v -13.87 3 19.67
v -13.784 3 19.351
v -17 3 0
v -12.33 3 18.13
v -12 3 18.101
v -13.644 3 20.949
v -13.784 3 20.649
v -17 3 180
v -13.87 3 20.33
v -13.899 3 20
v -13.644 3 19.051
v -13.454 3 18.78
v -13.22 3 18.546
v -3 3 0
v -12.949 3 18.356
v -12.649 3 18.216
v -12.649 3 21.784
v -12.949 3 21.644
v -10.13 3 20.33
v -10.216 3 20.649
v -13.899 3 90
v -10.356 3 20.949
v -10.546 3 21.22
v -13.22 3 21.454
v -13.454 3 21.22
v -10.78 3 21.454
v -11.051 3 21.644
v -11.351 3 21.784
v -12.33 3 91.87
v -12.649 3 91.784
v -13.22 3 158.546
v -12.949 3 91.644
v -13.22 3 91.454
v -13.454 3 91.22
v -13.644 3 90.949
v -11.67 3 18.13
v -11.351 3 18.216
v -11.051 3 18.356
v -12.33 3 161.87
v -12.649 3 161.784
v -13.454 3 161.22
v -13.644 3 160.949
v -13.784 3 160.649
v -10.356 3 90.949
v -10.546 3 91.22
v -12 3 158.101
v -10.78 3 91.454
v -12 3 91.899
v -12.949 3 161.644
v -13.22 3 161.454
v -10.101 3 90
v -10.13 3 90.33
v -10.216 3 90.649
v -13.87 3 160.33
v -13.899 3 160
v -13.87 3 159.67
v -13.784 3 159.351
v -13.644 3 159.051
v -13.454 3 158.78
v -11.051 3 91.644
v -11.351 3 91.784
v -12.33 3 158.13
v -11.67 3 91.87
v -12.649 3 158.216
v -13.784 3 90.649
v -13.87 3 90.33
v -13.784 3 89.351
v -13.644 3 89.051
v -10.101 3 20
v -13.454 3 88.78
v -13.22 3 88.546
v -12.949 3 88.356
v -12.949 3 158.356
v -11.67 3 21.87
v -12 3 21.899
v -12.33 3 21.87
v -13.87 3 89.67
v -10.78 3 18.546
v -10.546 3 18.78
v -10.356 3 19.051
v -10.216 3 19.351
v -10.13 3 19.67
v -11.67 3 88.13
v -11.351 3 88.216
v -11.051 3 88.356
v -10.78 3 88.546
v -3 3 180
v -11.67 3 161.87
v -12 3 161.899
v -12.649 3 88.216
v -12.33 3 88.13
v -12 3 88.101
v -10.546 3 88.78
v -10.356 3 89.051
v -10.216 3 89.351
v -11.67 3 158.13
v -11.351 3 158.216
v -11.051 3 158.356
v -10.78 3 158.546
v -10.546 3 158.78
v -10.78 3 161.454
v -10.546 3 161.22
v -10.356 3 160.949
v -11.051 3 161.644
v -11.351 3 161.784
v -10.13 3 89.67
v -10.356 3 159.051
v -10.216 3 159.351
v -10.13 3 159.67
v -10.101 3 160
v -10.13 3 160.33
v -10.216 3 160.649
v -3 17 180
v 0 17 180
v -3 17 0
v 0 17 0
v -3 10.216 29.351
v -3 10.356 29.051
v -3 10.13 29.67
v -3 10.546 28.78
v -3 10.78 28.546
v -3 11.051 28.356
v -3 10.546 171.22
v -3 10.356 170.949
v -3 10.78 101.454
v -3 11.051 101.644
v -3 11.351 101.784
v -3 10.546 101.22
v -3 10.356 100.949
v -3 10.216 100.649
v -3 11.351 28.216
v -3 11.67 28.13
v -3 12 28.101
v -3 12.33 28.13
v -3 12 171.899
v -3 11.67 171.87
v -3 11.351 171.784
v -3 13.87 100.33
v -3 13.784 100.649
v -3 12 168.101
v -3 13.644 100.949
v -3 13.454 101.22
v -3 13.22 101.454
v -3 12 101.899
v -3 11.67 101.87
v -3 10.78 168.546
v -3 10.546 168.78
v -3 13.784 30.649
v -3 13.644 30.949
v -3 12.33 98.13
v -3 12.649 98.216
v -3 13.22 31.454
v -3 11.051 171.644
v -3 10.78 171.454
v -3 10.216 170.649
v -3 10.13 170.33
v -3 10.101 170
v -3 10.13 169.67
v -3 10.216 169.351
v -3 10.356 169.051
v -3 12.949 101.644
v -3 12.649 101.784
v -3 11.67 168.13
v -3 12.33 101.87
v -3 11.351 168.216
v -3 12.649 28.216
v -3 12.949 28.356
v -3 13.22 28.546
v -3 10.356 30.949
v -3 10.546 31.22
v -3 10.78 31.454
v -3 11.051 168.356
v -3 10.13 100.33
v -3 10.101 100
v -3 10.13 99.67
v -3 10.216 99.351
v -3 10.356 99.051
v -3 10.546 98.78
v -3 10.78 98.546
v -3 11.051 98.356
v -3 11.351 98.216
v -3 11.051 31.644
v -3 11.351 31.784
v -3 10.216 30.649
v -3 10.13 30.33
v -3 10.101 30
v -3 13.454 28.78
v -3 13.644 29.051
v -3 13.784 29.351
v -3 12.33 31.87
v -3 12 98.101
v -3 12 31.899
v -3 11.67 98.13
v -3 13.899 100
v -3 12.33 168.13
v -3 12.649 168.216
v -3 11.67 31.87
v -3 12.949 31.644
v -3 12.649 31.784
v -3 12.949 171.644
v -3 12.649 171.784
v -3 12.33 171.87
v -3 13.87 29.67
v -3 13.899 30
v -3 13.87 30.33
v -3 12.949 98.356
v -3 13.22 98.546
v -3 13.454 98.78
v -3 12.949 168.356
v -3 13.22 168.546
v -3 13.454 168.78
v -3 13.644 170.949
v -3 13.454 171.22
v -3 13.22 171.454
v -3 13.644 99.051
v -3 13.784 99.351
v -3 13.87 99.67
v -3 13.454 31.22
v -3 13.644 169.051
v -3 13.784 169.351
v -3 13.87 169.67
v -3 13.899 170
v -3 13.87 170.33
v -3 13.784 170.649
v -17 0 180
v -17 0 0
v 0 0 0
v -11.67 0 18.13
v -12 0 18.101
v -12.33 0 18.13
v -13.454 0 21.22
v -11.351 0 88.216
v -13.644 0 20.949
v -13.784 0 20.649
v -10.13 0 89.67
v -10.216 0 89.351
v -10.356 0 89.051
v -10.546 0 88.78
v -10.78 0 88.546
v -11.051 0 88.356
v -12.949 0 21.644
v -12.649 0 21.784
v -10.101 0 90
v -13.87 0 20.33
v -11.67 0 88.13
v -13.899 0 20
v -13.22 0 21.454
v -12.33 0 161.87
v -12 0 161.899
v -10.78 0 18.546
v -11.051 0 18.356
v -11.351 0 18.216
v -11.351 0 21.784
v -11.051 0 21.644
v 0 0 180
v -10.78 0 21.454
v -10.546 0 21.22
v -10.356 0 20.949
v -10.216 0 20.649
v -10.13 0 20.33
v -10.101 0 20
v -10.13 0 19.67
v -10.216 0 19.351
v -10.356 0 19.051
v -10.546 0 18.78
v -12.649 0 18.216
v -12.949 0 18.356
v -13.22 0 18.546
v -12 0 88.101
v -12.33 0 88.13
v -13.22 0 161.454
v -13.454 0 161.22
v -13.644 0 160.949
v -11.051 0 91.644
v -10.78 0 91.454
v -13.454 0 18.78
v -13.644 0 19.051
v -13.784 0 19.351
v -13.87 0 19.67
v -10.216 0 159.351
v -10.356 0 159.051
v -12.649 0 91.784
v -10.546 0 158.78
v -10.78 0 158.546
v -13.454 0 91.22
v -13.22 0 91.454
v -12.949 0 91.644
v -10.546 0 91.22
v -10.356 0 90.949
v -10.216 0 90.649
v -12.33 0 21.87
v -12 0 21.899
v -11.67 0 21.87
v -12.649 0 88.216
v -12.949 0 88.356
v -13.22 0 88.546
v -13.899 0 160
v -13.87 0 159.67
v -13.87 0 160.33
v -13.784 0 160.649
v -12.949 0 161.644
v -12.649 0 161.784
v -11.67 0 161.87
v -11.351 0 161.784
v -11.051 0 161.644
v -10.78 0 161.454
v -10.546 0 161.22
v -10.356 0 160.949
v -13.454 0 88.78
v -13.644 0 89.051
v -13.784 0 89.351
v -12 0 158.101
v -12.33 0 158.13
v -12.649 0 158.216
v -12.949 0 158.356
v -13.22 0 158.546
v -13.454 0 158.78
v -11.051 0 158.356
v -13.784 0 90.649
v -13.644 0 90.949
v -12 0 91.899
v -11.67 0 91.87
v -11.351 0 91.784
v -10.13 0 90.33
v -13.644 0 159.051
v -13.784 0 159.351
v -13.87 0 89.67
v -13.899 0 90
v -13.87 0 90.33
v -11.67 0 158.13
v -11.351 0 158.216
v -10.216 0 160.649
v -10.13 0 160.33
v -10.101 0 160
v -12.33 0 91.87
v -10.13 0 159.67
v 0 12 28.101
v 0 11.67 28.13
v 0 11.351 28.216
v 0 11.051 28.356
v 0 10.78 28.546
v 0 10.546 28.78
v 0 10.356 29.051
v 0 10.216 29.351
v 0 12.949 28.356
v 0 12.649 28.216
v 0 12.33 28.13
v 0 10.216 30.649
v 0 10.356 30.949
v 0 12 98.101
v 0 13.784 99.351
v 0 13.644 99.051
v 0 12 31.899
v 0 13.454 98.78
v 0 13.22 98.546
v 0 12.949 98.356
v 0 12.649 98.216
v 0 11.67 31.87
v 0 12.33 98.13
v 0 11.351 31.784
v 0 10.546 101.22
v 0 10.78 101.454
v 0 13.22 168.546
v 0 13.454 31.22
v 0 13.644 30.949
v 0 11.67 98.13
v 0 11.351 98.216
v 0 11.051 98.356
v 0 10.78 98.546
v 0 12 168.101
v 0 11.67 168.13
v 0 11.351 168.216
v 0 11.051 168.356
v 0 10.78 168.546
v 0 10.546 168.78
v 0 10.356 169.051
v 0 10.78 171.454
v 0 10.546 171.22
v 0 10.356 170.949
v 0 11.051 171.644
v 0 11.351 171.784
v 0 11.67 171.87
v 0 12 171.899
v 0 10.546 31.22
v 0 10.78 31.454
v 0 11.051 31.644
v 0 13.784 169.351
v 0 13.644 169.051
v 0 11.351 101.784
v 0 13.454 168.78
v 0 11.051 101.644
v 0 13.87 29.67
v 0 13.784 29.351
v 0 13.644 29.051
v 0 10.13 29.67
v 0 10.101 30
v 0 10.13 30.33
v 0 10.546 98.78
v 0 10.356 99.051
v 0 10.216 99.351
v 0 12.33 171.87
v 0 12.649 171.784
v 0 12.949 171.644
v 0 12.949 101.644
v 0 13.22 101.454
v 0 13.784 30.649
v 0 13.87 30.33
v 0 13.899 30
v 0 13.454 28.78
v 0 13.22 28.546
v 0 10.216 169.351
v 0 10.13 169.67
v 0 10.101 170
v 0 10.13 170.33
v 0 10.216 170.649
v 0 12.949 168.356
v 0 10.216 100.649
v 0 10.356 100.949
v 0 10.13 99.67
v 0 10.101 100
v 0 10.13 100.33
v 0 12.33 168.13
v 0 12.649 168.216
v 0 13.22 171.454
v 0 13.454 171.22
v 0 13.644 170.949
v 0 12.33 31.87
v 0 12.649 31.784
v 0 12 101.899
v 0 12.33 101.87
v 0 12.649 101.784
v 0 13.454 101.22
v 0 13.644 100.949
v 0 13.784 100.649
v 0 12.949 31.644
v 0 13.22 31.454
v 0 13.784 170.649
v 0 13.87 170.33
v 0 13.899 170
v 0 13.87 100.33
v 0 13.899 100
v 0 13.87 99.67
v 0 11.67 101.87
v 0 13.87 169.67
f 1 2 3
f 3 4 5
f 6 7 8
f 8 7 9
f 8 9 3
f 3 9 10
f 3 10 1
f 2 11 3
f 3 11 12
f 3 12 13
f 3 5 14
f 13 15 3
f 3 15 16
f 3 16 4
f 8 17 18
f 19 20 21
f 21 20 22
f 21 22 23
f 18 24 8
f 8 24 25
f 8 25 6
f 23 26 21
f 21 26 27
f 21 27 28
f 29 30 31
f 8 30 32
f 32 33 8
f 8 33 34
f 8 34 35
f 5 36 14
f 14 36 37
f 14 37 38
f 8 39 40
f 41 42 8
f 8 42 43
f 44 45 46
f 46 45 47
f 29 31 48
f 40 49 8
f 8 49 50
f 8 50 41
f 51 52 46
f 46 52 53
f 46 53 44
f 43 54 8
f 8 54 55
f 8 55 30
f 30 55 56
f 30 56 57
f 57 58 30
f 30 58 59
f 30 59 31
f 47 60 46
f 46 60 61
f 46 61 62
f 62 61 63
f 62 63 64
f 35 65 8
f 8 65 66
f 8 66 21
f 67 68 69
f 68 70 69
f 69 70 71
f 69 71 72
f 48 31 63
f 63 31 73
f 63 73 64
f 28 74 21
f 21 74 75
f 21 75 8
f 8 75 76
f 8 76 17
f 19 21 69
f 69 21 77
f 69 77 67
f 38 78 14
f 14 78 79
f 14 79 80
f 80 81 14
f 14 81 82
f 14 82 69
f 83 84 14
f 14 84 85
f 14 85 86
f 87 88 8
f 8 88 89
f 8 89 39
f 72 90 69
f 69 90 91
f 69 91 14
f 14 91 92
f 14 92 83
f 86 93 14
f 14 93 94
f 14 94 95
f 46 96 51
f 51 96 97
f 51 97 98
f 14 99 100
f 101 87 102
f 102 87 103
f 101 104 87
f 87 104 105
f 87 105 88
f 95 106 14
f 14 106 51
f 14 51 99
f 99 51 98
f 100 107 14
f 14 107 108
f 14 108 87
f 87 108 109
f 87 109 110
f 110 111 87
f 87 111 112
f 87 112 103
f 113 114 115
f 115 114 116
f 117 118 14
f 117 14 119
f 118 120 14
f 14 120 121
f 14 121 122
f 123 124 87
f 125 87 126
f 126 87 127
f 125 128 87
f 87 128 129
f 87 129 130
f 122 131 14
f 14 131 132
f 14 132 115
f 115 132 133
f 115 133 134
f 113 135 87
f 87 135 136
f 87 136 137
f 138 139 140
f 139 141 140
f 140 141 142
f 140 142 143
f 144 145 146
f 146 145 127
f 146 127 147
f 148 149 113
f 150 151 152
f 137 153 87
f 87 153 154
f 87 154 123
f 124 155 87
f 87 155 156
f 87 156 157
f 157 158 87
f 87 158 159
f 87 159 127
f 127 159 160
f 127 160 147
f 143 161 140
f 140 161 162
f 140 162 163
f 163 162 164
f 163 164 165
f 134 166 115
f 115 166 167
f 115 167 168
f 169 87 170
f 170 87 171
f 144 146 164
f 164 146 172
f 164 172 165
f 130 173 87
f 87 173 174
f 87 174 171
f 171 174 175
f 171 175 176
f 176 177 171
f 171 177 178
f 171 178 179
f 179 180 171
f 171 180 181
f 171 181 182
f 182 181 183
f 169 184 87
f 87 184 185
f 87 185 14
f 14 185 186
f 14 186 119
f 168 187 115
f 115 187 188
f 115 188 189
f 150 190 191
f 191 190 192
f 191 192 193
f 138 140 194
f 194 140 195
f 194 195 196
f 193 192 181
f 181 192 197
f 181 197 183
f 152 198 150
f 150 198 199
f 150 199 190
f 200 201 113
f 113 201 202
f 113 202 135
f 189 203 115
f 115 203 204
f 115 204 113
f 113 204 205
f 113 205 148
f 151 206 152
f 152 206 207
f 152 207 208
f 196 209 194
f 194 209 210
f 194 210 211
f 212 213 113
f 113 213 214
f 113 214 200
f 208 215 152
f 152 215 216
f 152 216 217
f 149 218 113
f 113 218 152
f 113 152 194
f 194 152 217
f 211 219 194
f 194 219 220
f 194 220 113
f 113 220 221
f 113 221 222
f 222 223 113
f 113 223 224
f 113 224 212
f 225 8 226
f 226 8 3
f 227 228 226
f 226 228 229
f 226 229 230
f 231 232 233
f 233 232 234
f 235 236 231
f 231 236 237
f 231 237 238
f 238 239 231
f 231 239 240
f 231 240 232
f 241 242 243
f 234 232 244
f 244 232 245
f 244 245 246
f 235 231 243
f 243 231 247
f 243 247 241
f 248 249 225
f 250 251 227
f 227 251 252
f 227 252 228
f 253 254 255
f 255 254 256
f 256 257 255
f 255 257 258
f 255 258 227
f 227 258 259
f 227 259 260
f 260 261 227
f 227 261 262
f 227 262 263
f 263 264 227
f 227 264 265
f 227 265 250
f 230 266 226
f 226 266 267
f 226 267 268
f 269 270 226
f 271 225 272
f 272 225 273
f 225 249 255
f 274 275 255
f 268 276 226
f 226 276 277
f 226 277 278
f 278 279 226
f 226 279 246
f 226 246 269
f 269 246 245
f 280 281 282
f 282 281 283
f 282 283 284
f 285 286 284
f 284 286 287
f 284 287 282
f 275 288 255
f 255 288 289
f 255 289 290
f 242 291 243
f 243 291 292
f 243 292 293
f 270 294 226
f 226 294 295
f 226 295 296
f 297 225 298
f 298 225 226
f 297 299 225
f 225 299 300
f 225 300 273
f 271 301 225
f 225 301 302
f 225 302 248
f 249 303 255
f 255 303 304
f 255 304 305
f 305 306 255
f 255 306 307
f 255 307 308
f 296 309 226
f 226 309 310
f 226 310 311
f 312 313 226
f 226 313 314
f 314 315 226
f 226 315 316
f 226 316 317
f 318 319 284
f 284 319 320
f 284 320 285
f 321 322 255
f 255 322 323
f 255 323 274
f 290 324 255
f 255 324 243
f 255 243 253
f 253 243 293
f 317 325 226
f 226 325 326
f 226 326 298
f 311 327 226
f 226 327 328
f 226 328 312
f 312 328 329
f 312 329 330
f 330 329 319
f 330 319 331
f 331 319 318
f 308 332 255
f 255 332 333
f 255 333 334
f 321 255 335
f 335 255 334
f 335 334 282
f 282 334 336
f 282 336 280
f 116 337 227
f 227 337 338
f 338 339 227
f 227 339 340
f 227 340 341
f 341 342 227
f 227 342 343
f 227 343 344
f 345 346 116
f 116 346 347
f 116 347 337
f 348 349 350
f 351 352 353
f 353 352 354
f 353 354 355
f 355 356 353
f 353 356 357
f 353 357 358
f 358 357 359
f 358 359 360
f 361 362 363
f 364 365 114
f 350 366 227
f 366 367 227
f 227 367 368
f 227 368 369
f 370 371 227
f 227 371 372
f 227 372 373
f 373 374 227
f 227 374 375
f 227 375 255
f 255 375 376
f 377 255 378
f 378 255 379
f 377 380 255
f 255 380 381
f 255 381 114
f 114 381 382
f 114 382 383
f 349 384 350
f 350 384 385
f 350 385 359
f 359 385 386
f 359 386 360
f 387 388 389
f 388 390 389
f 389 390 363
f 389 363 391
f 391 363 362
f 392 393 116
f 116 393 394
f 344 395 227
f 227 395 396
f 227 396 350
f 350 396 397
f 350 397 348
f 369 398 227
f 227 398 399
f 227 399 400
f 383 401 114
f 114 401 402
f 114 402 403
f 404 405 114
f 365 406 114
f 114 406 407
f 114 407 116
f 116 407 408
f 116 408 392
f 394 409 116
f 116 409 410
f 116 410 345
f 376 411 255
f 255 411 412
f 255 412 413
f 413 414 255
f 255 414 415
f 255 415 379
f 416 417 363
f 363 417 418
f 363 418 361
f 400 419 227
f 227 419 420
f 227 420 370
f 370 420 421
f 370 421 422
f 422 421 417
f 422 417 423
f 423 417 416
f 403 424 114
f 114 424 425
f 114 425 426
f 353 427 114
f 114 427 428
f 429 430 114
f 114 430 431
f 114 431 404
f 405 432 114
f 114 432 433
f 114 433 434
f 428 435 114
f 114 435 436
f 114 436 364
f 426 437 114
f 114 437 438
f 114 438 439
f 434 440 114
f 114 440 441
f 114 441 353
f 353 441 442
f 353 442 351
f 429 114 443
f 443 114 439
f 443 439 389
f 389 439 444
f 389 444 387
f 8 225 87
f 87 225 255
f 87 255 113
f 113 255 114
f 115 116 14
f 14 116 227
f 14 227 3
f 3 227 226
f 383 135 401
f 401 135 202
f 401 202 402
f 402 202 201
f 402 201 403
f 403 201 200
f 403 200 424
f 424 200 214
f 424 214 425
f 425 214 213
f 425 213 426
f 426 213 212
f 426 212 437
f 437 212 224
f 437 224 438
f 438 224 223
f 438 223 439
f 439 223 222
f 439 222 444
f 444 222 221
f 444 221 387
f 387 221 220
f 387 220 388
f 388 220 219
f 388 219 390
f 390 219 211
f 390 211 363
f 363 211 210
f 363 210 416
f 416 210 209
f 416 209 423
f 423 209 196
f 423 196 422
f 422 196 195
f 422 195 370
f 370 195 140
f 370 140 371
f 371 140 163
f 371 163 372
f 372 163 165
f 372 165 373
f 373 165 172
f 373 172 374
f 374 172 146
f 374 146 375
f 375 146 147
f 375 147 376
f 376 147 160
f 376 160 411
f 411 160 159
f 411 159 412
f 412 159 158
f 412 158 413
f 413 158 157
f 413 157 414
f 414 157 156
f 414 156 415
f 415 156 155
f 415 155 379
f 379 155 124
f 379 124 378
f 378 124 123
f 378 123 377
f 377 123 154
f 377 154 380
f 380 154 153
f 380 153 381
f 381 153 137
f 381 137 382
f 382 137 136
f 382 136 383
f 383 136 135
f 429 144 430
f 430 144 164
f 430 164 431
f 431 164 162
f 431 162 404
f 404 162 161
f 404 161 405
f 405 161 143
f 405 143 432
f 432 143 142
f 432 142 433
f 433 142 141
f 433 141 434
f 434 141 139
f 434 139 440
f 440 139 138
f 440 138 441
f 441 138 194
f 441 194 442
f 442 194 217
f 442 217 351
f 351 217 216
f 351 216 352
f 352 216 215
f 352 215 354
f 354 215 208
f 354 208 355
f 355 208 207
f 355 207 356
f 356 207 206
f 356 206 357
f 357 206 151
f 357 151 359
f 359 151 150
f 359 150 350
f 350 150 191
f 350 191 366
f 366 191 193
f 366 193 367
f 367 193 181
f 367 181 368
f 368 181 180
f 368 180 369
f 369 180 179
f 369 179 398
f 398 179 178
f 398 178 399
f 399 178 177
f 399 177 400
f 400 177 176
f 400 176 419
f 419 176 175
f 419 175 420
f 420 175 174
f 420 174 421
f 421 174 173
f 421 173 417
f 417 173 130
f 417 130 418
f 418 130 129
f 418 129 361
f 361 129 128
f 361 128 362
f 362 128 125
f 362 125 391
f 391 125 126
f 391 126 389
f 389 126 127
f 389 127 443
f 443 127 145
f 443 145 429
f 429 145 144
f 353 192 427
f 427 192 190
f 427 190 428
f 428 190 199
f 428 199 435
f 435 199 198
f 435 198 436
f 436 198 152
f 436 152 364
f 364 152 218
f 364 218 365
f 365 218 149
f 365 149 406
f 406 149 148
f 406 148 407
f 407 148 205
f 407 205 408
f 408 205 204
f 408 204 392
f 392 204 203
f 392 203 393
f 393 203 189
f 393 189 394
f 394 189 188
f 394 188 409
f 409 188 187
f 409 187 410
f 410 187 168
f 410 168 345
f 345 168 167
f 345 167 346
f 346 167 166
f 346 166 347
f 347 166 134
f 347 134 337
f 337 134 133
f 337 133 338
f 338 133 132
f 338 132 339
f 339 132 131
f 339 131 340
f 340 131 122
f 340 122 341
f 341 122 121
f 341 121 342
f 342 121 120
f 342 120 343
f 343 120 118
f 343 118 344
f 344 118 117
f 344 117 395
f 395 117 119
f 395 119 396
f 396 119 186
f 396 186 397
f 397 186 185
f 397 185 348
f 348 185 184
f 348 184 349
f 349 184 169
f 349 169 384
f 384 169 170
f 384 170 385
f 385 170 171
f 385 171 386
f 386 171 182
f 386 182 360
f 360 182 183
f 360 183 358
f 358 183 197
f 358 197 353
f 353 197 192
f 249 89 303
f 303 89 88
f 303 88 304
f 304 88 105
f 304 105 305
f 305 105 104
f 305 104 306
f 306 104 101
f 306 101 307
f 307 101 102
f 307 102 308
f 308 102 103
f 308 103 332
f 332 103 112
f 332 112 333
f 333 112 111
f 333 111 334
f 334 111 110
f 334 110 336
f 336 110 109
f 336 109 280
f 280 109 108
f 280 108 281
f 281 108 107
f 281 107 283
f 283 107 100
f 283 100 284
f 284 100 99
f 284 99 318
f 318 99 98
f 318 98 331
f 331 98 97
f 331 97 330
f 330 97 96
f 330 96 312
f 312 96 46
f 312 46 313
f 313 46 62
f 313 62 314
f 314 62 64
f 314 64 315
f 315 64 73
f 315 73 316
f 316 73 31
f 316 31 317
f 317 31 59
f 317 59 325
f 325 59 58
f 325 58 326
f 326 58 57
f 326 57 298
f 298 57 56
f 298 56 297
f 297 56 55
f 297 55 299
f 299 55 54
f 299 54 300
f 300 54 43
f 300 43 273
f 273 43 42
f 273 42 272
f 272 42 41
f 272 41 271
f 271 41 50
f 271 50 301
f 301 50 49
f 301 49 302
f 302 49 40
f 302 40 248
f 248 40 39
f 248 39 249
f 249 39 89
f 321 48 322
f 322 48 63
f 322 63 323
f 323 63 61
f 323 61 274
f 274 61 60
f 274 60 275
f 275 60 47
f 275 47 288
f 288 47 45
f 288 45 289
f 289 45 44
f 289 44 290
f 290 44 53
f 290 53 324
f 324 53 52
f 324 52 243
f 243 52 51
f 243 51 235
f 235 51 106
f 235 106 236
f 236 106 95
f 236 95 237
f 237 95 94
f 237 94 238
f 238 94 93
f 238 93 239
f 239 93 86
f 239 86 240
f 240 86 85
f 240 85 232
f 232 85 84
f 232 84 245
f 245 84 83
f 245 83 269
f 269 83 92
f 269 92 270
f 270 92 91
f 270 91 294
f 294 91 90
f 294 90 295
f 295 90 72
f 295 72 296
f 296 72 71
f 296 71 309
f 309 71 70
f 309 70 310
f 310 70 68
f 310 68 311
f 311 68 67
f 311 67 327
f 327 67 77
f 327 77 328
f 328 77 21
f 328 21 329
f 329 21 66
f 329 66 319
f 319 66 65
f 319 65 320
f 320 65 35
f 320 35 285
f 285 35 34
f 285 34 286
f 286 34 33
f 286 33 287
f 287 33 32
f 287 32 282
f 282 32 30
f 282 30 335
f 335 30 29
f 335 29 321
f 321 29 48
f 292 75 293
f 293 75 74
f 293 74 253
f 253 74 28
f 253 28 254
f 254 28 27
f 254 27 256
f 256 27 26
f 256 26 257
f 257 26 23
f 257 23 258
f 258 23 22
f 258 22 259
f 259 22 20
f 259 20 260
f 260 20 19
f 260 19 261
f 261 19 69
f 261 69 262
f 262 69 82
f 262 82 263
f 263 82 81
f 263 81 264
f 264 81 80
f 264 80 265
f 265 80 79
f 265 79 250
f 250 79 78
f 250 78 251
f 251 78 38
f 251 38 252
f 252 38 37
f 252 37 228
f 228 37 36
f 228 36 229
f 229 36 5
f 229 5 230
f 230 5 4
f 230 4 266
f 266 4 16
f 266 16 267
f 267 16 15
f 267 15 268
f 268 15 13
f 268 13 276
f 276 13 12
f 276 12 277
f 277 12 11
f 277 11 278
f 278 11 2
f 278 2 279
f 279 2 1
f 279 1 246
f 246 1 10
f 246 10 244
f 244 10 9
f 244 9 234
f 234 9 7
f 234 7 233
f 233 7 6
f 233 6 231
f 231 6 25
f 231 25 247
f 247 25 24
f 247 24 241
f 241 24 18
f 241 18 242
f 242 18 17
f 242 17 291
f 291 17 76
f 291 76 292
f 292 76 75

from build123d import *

# Parameters (mm, degrees)
BOSS_EXTRUDE1_DEPTH   = 180
F_6_CLEARANCE_HOLE1_D = 3.7973
F_6_CLEARANCE_HOLE2_D = 3.7973


with BuildPart() as part:
    # Sketch1 → Boss-Extrude1 (new body)
    with BuildSketch(Plane.XY):
        Polygon((0, 0), (0, 17), (-3, 17), (-3, 3), (-17, 3), (-17, 0), align=None)
    extrude(amount=BOSS_EXTRUDE1_DEPTH)

    # #6 Clearance Hole1 (through all)
    with Locations(Plane.ZY.offset(3)):
        with Locations((30, 12), (100, 12), (170, 12)):
            Hole(F_6_CLEARANCE_HOLE1_D / 2)

    # #6 Clearance Hole2 (through all)
    with Locations(Plane(origin=(0, 3, 0), x_dir=(1, 0, 0), z_dir=(0, 1, 0))):
        with Locations((-12, -20), (-12, -90), (-12, -160)):
            Hole(F_6_CLEARANCE_HOLE2_D / 2)


solid = part.part
